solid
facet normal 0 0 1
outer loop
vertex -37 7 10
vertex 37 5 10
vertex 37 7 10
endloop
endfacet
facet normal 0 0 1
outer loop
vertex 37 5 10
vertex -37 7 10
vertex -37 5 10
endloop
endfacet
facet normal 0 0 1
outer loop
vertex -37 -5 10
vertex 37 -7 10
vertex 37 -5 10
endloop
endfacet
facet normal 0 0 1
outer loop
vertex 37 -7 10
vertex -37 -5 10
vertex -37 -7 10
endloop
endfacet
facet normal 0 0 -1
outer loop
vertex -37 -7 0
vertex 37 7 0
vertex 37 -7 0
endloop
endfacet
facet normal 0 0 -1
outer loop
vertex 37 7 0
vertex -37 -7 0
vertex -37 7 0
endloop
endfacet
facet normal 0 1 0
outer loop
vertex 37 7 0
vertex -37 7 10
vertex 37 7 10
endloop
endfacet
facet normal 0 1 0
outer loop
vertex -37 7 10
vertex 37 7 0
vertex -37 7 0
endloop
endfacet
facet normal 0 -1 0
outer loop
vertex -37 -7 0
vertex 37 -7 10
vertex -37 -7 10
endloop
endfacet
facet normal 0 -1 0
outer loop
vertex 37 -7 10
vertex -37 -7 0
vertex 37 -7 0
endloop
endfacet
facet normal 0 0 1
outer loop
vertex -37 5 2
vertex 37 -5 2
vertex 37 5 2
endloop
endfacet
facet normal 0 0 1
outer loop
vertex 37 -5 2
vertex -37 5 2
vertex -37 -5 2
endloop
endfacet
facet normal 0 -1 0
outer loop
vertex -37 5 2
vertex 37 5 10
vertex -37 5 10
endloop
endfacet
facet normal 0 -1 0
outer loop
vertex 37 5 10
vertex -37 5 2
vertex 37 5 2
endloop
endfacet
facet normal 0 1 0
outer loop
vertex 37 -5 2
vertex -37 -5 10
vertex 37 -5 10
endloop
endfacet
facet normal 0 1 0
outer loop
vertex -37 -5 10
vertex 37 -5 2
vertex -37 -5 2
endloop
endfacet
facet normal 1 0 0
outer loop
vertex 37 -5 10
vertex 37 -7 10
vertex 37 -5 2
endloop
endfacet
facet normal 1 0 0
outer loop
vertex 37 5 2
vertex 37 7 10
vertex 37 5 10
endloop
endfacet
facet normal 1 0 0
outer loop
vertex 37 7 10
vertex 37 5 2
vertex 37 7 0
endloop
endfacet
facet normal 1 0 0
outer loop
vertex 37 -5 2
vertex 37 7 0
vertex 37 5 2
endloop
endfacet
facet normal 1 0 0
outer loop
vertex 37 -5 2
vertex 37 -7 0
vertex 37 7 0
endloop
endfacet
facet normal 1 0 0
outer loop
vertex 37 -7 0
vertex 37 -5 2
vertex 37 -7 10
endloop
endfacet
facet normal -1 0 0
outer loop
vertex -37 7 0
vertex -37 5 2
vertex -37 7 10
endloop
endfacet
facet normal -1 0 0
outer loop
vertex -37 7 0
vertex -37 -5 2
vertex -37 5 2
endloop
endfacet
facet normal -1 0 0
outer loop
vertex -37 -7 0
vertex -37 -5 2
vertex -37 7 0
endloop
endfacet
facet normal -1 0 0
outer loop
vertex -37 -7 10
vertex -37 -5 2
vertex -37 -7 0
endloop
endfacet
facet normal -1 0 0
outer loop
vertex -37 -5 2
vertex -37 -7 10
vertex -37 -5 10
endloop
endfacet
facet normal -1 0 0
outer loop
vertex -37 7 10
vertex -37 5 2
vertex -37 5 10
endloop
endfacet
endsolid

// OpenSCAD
// Прямой паз для соединения 2х стенок в ряд
// Модульная конструкция: центральное основание + 2 рукава (лево-право)

// Параметры (все размеры в мм)
center_size = 10;     // Размер центрального квадрата (внутри)
sleeve_length = 30;   // Длина рукава
groove_width = 10;    // Ширина паза (внутри) - для фанеры 9.3мм
wall_height = 10;     // Высота стенок
wall_thickness = 2;   // Толщина стенок

// Вычисляемые размеры
total_width = groove_width + 2 * wall_thickness;  // 14 мм
center_total = center_size + 2 * wall_thickness;  // 14 мм

// 1. Метод: нарисовать основание
module draw_base() {
    difference() {
        cube([center_total, center_total, wall_height]);
        translate([wall_thickness, wall_thickness, wall_thickness])
            cube([center_size, center_size, wall_height]);
    }
}

// Модуль для создания одного рукава
module single_sleeve() {
    difference() {
        cube([sleeve_length, total_width, wall_height]);
        translate([0, wall_thickness, wall_thickness])
            cube([sleeve_length, groove_width, wall_height]);
    }
}

// Метод: вырезать отверстие в стенке основания
module cut_wall_opening(side) {
    if (side == 0) {
        translate([center_total - wall_thickness - 0.1, wall_thickness, wall_thickness])
            cube([wall_thickness + 0.2, groove_width, wall_height]);
    } else if (side == 2) {
        translate([-0.1, wall_thickness, wall_thickness])
            cube([wall_thickness + 0.2, groove_width, wall_height]);
    }
}

// 2. Метод: прицепить рукав к основанию
module attach_sleeve(side) {
    if (side == 0) {
        translate([center_total, center_total/2 - total_width/2, 0])
            single_sleeve();
    } else if (side == 2) {
        translate([-sleeve_length, center_total/2 - total_width/2, 0])
            single_sleeve();
    }
}

// Собираем прямую конструкцию
translate([-center_total/2, -center_total/2, 0]) {
    union() {
        difference() {
            draw_base();
            cut_wall_opening(0);  // Право
            cut_wall_opening(2);  // Лево
        }
        attach_sleeve(0);  // Право
        attach_sleeve(2);  // Лево
    }
}

// Информация для проверки
echo("=== Размеры прямого паза ===");
echo("Центральный квадрат (внутри):", center_size, "x", center_size, "мм");
echo("Длина рукава:", sleeve_length, "мм");
echo("Ширина паза (внутри):", groove_width, "мм");
